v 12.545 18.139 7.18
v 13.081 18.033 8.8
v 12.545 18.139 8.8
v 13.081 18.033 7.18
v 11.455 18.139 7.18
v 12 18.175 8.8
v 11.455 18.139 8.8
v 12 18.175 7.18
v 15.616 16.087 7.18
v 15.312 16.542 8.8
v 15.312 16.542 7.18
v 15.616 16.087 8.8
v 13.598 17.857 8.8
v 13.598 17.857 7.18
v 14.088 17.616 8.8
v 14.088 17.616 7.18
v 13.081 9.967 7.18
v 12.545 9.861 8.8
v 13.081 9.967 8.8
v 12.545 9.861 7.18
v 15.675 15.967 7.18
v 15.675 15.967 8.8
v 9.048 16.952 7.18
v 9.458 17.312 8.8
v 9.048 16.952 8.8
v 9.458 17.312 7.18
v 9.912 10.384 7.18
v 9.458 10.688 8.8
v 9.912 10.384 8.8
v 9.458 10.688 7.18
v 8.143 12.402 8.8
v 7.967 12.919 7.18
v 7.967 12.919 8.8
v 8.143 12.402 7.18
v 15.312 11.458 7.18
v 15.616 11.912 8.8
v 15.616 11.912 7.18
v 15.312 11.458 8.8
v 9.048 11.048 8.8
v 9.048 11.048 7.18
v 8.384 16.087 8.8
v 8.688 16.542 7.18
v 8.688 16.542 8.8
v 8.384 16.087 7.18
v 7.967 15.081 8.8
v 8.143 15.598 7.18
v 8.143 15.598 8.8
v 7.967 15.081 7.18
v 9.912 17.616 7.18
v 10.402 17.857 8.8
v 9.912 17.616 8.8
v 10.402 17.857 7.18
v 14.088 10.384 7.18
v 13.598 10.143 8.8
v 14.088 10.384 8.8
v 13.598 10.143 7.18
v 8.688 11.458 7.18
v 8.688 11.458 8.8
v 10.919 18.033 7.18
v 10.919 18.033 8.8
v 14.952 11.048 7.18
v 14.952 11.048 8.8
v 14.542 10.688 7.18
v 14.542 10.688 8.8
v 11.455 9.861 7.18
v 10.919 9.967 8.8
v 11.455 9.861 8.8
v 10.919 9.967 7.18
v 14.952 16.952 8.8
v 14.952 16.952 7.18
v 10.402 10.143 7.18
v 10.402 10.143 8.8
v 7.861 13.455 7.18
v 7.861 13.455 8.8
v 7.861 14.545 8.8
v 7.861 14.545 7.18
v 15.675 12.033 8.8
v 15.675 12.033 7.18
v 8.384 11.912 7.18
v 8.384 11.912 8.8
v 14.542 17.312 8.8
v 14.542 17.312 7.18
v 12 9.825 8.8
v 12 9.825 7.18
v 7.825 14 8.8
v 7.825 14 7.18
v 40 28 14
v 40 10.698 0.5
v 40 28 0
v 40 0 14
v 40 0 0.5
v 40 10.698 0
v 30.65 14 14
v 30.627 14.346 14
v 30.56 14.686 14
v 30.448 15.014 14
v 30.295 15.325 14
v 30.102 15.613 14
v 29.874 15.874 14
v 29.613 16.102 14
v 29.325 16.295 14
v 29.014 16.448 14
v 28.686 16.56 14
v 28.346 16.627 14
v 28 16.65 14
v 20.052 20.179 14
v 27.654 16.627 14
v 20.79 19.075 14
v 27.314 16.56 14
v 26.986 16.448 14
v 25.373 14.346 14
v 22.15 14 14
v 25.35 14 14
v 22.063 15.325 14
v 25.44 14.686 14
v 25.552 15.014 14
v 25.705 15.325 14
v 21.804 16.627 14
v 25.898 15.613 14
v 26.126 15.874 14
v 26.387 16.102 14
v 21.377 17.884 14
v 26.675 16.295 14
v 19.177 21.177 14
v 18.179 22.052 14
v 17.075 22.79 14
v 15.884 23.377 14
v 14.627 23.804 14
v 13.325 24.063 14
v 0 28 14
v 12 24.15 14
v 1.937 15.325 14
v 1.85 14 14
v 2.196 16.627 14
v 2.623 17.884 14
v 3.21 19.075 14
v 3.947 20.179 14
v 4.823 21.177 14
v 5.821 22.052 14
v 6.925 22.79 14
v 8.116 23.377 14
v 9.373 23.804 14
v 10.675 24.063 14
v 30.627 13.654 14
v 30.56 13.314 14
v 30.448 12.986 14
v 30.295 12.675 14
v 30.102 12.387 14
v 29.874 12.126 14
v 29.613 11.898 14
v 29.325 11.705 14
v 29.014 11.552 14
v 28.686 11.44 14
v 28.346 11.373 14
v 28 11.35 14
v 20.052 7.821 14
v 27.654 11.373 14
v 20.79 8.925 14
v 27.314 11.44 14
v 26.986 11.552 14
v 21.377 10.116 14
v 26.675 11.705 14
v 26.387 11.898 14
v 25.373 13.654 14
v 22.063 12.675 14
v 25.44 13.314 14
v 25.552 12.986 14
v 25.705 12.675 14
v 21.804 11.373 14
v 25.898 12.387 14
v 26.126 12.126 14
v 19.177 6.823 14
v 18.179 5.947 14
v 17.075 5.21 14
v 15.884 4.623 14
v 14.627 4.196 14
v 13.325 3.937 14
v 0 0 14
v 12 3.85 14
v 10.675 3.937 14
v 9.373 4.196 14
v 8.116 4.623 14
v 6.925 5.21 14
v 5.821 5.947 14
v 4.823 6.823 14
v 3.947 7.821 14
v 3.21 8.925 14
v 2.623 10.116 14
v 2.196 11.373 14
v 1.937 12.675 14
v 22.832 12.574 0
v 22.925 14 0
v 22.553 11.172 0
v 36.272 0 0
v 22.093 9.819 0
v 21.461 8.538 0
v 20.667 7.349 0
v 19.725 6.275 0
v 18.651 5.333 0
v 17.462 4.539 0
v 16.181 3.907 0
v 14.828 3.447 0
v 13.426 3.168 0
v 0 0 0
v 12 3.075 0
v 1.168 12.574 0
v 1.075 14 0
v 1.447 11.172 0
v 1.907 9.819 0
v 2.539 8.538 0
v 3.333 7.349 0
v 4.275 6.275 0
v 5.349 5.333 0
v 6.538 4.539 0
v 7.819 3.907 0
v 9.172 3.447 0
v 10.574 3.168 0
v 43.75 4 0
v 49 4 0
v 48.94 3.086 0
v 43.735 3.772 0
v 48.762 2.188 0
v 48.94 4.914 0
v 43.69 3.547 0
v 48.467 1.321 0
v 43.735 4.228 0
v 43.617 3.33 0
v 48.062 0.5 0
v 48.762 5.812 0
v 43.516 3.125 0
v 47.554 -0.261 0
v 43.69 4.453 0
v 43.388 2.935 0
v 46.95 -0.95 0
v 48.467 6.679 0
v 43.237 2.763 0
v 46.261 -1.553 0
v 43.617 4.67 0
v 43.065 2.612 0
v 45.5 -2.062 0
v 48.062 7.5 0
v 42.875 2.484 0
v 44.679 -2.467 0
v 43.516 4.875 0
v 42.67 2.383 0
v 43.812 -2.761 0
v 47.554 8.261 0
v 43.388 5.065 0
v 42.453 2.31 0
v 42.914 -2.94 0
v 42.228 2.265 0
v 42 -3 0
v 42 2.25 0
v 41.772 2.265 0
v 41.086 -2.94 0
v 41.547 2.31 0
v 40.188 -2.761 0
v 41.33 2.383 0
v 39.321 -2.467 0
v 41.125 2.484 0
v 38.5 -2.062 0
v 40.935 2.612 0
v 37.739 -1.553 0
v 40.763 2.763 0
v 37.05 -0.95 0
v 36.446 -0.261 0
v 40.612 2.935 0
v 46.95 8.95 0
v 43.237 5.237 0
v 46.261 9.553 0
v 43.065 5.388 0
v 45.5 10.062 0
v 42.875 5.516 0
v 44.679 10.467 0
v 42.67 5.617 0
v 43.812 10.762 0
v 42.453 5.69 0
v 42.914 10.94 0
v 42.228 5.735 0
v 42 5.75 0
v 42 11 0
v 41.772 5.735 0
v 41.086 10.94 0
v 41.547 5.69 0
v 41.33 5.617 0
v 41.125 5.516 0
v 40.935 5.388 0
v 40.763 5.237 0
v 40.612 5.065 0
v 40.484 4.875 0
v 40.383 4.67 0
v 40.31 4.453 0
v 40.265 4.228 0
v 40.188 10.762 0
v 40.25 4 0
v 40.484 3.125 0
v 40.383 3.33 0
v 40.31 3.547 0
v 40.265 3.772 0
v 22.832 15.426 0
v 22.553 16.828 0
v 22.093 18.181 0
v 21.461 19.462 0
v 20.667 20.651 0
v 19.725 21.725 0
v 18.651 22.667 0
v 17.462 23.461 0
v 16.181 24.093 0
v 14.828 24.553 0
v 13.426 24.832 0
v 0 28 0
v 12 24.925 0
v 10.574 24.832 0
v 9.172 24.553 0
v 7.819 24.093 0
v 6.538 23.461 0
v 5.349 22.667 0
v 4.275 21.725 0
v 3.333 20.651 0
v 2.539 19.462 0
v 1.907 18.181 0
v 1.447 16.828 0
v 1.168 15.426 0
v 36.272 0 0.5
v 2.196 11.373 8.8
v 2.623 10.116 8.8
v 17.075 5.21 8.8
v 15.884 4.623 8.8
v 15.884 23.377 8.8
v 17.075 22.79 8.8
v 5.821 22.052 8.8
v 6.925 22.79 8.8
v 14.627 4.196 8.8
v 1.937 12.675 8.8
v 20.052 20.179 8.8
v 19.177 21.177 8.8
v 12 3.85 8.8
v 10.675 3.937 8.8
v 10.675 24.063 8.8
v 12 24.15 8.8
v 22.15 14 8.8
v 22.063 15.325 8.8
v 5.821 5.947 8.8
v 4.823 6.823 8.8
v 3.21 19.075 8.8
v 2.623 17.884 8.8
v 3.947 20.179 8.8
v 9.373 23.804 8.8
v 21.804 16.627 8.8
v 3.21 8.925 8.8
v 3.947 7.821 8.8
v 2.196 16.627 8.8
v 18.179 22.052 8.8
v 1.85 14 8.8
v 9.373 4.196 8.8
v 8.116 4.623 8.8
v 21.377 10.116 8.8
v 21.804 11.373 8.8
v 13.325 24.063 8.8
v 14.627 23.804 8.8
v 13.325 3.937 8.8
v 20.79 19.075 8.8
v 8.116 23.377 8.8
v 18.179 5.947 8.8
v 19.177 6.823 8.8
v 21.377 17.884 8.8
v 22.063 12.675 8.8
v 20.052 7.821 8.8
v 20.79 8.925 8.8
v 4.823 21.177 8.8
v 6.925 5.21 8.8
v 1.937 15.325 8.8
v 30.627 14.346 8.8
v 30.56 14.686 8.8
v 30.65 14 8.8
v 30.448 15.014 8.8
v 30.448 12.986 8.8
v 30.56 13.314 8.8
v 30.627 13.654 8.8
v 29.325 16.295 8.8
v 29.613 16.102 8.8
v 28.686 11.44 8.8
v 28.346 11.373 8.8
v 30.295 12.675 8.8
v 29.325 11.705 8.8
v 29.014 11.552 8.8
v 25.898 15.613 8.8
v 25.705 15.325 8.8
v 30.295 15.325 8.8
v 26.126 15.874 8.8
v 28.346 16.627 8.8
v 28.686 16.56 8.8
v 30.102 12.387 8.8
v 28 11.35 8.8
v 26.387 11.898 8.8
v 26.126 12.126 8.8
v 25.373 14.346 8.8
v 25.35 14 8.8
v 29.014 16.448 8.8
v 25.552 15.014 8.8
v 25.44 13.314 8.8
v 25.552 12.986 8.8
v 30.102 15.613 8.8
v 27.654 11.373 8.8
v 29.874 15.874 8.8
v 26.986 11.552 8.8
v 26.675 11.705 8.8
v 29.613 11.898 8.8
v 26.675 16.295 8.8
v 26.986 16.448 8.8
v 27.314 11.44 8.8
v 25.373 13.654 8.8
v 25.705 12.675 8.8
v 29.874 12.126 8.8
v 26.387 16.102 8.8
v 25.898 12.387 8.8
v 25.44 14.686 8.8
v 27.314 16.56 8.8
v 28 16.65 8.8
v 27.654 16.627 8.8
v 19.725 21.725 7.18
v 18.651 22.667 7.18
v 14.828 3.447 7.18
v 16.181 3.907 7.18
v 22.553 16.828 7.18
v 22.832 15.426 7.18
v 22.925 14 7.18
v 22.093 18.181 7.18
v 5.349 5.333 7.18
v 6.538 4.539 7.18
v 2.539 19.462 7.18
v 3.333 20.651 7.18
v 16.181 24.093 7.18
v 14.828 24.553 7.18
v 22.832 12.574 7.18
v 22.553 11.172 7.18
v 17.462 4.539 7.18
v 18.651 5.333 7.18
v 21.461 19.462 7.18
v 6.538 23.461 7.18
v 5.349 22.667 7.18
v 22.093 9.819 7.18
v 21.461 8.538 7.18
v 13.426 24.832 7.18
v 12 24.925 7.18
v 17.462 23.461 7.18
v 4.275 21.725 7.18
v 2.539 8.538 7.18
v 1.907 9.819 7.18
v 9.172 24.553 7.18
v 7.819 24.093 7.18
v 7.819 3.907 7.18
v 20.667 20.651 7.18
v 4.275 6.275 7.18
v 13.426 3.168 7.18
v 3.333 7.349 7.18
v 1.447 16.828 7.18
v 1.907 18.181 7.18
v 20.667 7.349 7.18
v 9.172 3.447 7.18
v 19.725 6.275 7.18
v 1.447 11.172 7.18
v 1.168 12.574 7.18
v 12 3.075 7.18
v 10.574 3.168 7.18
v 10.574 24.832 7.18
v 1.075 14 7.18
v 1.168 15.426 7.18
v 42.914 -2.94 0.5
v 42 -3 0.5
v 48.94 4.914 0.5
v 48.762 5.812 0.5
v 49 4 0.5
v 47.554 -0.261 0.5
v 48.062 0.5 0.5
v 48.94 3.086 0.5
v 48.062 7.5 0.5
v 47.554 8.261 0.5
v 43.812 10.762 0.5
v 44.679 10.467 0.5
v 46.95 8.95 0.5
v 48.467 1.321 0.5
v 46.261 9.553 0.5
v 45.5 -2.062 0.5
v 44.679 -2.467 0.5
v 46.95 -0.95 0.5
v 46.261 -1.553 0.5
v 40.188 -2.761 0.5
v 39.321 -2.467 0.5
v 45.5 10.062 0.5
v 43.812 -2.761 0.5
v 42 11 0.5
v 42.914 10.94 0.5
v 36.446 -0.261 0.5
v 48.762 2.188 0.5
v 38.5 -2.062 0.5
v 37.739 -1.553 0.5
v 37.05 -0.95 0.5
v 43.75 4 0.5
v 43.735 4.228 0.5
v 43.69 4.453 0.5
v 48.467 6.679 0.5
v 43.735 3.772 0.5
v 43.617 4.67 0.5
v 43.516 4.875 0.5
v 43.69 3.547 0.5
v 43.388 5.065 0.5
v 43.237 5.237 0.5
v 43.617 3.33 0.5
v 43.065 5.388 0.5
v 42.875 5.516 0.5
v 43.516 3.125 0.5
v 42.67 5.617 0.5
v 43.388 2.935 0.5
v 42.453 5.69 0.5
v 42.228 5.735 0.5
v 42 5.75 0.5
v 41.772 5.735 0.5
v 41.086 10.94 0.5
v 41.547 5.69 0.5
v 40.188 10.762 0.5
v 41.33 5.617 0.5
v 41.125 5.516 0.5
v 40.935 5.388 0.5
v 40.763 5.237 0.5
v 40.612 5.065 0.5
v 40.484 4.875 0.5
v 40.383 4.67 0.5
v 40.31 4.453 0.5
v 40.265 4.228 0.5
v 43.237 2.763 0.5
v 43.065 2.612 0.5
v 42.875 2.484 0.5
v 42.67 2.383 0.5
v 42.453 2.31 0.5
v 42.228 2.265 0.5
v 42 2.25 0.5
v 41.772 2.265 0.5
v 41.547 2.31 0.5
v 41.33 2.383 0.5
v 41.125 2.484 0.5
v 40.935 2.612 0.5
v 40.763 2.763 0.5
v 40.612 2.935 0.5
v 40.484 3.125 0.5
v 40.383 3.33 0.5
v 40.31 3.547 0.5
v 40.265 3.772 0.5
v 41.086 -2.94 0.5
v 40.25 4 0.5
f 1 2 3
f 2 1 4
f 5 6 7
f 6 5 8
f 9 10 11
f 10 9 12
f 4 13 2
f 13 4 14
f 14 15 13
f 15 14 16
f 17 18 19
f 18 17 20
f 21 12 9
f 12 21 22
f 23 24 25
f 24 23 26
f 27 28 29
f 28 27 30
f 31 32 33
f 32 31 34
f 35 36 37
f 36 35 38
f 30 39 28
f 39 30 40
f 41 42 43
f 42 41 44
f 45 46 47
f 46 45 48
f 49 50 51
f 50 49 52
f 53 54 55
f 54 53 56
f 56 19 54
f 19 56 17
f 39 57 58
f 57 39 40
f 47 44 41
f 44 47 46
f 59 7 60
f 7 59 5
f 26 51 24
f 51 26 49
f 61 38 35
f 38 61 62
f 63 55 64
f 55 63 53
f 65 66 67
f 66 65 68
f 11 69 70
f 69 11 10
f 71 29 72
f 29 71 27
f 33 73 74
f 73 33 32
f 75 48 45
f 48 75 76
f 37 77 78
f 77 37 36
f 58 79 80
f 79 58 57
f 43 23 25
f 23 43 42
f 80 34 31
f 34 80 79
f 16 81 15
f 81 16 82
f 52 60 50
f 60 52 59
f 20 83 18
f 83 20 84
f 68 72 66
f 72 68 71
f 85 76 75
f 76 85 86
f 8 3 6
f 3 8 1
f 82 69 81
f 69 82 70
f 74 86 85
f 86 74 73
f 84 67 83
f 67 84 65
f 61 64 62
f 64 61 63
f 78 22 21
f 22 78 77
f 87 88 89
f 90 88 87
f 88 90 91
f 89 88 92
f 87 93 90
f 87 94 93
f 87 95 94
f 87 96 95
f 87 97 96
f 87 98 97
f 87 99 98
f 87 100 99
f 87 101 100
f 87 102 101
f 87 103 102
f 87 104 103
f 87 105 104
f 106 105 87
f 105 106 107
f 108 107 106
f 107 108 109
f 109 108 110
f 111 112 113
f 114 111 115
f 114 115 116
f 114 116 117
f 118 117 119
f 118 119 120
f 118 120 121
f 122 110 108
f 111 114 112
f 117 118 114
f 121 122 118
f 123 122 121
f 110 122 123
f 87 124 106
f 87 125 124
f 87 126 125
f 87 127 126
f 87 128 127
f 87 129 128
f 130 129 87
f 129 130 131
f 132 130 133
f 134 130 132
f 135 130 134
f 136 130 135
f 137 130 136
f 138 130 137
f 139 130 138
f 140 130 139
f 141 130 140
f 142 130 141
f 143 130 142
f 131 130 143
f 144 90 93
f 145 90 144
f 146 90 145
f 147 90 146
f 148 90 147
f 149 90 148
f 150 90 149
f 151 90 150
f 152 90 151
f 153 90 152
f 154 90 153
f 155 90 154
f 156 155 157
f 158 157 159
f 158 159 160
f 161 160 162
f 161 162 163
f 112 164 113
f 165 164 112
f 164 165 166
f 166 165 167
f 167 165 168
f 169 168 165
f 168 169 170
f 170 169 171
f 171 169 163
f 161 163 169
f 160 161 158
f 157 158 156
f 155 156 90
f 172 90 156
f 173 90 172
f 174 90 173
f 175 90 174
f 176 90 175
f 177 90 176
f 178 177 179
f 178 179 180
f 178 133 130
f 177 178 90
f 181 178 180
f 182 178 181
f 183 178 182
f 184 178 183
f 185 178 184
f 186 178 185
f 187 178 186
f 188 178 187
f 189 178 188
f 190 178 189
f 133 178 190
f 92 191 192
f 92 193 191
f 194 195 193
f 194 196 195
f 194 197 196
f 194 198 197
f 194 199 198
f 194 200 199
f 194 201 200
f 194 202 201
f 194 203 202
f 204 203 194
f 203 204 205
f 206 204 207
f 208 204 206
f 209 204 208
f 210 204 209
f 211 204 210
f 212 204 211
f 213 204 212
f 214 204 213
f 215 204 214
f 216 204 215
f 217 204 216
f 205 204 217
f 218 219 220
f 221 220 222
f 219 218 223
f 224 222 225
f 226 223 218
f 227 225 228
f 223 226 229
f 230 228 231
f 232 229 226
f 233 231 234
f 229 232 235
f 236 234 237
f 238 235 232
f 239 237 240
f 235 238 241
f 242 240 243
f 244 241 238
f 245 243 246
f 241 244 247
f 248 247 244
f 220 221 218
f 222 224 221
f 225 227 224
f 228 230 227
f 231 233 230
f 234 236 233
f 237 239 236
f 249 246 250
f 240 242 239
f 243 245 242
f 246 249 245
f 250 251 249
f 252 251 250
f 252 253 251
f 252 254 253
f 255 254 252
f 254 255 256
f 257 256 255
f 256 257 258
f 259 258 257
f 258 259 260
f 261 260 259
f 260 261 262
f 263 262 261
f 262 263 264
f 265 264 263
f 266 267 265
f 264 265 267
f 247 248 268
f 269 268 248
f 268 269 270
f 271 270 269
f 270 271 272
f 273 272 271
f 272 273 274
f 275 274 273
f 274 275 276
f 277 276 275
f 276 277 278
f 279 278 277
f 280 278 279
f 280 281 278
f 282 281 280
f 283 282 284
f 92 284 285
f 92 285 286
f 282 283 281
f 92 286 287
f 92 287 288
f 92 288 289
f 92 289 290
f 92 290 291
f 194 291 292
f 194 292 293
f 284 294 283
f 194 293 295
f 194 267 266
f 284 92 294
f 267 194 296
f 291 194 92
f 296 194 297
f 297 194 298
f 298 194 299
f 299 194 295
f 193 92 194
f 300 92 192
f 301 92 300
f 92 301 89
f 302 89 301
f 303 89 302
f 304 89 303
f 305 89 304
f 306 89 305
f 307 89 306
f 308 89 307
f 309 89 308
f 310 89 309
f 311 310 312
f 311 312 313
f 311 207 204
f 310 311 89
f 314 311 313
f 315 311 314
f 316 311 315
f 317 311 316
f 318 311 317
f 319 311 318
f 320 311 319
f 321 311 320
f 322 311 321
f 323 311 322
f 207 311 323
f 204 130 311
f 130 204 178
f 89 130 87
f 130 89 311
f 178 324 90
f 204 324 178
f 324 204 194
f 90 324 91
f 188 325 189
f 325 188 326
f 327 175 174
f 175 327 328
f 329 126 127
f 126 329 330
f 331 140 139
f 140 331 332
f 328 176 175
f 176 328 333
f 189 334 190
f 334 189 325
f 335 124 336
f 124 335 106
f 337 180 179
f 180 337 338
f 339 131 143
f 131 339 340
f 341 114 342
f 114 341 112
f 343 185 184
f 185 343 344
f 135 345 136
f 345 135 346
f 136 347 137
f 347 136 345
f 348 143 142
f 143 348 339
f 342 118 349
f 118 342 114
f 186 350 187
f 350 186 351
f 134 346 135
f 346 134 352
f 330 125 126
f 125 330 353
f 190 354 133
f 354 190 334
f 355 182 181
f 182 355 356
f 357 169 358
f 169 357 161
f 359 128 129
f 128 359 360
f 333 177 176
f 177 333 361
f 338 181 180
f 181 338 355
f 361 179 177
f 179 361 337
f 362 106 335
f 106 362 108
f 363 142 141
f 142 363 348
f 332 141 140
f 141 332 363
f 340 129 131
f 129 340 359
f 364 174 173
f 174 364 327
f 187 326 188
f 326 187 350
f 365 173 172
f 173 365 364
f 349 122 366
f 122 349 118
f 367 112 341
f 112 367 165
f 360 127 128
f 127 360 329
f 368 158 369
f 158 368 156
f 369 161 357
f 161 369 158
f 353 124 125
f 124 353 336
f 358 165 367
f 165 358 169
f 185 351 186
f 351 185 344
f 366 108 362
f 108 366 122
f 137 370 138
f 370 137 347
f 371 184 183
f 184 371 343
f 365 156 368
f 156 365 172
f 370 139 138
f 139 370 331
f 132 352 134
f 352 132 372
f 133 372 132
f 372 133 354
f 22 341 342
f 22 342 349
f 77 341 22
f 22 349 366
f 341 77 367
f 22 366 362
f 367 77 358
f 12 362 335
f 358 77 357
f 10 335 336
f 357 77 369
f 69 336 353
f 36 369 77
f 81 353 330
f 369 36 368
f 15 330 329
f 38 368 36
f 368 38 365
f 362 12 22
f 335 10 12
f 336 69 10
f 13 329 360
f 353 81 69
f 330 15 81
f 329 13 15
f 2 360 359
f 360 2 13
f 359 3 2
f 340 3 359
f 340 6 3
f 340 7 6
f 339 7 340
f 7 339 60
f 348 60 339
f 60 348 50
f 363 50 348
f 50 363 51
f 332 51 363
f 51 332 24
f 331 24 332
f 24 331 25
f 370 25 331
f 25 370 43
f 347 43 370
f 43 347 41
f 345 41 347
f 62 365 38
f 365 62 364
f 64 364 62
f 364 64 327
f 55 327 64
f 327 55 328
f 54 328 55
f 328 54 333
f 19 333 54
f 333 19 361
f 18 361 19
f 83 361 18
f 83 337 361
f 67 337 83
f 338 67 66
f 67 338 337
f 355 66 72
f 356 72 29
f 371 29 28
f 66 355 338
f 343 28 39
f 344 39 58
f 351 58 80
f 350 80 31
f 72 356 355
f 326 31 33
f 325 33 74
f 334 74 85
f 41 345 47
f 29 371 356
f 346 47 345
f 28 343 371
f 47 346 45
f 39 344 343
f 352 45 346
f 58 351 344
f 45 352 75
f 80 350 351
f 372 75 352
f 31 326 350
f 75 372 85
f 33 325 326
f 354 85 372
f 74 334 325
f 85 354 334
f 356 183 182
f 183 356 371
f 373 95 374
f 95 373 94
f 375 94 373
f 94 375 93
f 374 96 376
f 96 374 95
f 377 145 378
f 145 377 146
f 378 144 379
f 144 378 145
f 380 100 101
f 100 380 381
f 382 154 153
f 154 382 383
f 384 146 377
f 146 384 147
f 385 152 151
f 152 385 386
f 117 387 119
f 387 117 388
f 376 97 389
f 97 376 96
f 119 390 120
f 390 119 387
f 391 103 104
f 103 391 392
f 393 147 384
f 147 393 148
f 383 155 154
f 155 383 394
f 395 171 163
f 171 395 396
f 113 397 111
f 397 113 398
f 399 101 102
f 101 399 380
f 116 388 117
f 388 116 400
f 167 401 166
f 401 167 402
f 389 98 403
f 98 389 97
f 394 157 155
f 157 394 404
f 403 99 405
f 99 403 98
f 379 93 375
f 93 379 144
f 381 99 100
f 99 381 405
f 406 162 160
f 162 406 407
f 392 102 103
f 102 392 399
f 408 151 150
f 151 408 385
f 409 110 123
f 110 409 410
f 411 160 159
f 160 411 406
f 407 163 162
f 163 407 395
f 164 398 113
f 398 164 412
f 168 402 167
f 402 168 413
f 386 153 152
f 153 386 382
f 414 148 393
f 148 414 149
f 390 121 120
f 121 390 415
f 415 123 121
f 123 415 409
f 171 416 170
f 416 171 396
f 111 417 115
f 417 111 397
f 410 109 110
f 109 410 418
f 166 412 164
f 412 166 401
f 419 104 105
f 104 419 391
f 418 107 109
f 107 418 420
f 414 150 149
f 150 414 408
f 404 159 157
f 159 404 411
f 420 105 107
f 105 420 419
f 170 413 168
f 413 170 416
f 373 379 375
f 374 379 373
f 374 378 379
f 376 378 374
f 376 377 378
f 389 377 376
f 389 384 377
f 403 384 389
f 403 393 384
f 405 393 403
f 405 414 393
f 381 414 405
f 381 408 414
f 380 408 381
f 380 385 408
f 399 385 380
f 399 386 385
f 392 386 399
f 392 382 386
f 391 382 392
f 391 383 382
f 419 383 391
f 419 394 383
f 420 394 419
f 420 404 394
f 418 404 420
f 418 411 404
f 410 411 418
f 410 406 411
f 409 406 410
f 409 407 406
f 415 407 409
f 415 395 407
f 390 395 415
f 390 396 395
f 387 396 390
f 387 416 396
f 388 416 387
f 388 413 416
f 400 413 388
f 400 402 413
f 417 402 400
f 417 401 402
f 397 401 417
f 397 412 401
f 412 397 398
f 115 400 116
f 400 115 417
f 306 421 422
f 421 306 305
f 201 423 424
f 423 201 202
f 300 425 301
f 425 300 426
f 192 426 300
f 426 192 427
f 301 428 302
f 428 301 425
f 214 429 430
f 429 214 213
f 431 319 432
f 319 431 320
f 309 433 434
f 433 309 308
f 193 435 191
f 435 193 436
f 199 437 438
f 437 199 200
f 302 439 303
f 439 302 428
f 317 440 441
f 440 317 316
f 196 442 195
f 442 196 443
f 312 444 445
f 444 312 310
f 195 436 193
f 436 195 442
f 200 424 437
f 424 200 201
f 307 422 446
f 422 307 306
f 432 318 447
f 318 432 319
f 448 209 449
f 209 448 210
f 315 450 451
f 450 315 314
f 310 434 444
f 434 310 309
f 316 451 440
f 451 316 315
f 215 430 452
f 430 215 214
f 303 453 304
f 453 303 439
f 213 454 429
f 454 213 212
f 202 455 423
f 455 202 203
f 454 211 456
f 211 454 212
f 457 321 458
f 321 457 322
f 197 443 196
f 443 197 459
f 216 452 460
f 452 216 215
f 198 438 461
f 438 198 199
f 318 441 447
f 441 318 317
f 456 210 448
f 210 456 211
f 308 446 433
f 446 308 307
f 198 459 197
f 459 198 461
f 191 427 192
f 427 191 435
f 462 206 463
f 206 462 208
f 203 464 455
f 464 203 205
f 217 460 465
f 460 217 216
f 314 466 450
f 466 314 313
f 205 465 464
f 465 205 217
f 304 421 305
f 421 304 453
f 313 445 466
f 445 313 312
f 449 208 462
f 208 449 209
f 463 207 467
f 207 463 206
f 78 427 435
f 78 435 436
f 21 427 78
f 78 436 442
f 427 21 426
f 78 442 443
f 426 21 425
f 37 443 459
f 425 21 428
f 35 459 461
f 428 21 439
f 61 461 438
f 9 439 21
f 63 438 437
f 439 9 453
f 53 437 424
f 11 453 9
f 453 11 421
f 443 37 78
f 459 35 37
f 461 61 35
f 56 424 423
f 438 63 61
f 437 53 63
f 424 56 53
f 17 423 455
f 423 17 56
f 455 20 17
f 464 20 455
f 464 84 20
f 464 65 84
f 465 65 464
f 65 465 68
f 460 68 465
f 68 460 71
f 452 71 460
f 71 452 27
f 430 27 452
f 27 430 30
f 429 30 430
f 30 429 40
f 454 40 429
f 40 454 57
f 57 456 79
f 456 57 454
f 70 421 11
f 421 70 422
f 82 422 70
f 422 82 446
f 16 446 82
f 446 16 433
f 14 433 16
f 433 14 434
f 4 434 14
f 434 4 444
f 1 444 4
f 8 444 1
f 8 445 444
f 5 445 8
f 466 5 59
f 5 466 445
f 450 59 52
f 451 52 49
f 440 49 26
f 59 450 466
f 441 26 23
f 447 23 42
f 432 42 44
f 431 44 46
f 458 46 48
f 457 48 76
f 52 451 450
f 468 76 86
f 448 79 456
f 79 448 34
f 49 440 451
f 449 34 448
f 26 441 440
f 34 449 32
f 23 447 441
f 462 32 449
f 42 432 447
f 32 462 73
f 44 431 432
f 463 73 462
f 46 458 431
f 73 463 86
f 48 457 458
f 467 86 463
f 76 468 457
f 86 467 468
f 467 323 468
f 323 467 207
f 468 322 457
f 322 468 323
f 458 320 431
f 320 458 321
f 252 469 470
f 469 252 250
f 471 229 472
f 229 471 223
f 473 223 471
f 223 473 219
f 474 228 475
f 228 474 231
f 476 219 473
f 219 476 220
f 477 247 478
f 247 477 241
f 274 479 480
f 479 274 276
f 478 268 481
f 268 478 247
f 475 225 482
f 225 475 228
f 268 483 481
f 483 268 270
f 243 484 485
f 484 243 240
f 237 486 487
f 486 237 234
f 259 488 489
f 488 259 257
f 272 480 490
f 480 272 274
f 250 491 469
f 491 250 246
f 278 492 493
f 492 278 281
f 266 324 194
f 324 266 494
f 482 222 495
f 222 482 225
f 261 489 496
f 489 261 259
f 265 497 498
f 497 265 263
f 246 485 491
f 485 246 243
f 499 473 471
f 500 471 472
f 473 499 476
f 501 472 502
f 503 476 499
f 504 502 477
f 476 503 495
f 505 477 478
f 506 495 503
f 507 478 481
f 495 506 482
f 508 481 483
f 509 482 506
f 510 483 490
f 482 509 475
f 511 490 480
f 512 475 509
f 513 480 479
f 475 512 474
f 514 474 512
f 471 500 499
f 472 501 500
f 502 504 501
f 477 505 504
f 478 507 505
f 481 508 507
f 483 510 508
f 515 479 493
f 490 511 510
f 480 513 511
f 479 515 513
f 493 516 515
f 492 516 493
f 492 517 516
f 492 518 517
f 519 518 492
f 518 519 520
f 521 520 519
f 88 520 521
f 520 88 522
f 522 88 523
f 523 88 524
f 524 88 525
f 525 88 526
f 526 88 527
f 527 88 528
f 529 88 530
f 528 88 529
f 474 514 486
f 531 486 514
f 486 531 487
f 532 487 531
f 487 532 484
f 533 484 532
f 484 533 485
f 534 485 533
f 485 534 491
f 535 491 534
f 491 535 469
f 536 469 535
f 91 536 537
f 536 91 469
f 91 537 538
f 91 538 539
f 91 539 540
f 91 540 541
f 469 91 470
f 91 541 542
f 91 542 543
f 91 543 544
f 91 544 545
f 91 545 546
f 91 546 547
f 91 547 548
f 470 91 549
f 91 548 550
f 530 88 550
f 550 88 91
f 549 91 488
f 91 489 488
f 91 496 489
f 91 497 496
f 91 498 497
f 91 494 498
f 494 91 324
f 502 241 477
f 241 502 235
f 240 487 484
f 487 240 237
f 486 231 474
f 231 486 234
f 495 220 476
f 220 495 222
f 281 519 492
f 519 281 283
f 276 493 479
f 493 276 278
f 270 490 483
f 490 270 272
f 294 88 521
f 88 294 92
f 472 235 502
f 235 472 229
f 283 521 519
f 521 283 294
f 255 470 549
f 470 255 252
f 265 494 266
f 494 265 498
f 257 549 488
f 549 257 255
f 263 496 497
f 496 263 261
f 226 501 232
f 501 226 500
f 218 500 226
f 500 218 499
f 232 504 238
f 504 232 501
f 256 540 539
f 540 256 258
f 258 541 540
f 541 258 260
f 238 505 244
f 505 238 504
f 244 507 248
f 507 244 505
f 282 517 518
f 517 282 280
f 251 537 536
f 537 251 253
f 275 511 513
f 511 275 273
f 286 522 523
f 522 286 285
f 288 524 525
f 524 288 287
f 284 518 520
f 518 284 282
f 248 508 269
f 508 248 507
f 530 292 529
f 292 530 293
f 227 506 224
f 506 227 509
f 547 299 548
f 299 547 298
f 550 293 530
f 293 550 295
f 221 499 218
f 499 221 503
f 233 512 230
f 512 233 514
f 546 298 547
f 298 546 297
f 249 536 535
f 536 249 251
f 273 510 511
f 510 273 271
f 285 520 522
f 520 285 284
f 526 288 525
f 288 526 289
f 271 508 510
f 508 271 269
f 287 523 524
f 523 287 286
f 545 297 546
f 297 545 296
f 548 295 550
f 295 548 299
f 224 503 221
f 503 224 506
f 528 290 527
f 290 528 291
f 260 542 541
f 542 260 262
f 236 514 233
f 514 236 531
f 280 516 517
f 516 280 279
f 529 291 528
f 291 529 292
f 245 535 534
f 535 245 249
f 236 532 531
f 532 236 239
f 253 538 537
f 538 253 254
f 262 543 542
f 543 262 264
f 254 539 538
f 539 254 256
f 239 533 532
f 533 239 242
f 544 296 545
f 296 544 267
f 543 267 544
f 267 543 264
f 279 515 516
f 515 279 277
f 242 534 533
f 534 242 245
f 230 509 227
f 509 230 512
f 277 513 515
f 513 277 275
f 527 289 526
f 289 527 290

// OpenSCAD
// file: parameters.scad
// =============================================================================
// Gen-BC — nightly 2026-10-03 (physics_scorer, honest magpylib watts)
// Clocking 0 deg (magnets N facing S / through-magnetised stack) + D-flat keyed bore + index notch + flip-symmetric braces/bolts.
// Windable 2-piece bobbin; turns = physics_scorer turns_fit; copper only between flanges.
// former_web = 3.60 mm (taller copper vs Gen-BA 2.46) — gap grows with web (honest Bz tradeoff).
// =============================================================================
topology            = "mid_rotor";

// --- Wire / winding (physics_scorer winding-fit) -------------------------------
wire_awg            = 26;
wire_od             = 0.45;     // insulated OD mm (bare 0.405)
fill_realistic      = 0.60;     // insulated-wire area / window, hand-wound layered
turns               = 114;       // = physics_scorer turns_fit (do NOT raise)
coil_former_type    = "bobbin";
coil_core_inset     = 8.40;     // radial copper build: hub = copper boundary inset by this
wind_build_axial    = 0.0;      // nothing proud of the flanges
wind_build_radial   = 0.0;

// --- Bobbin (base + lid) ---------------------------------------------------------
coil_id_r           = 28.00;    // copper boundary sector (over the magnet track)
coil_od_r           = 52.00;
span_deg            = 32.42;    // = pitch - 2*asin((wall+0.85)/coil_id_r) -> >=1.2 mm stator web
former_web          = 3.60;     // copper height between flanges
flange_t            = 0.60;
wall                = 1.00;     // flange lip beyond copper
former_bare_h       = former_web + 2 * flange_t;
coil_envelope_h     = former_bare_h + 2 * wind_build_axial;
tab_w               = 7.0;
tab_len             = 7.0;
tab_h               = former_bare_h / 2;
pin_d               = 1.9;      // 1.75 mm filament locating pin
coil_mount_r        = coil_od_r + 0.2 + 4.0;
lead_y              = 1.6;
lead_slot_w         = 0.9;
lead_groove_d       = 0.6;

// --- Gap -------------------------------------------------------------------------
run_clear           = 0.50;     // rotor face -> flange
gap_spacer_h        = run_clear + wind_build_axial;
m2m                 = coil_envelope_h + 2 * run_clear;

// --- Stator ----------------------------------------------------------------------
coil_stations       = 9;        // per stator; x2 stators
bay_clear           = 0.25;
bay_depth           = former_bare_h;
stator_back_web     = 2.0;
stator_thick        = bay_depth + stator_back_web;
stator_od           = 160.0;
shaft_clear_stator  = 14.0;     // stator is static; shaft only

// --- Rotor(s) --------------------------------------------------------------------
magnet_Br           = 1.43;     // N52
halbach_magnetisation = "diametric"; // O5x5 assist magnets MUST be DIAMETRICALLY magnetised (tangential)
rotor_b_same_axis   = true;     // same-index magnets share one axis: N faces S across the gap
large_pocket_d      = 20.3;
small_pocket_d      = 5.3;
pocket_h            = 5.2;
large_n             = 8;
R_large             = 40.0;
R_small_inner       = 26.0;
R_small_mid         = 40.0;
R_small_outer       = 56.0;
carrier_od          = 158.0;
mid_carrier_thick   = 12.0;
hub_h               = 10.0;
hub_od              = 30.0;
rotor_b_offset_deg  = 0.0;      // CLOCKING: magnets directly opposite
shaft_key           = "dflat";
dflat_depth         = 0.5;      // 8 mm shaft with 0.5 mm flat (7.5 across flat)
index_notch_d       = 3.0;

// --- Modular MAX interface (Gen-E family) -----------------------------------------
shaft_bore          = 8.35;
dflat_x             = 4.0 - dflat_depth + (shaft_bore - 8.0) / 2;
bearing_d           = 21.85;
bearing_h           = 7.2;
m3_clear            = 3.5;
bolt_r_inner        = 18.0;
bolt_n_inner        = 4;
bolt_inner_angles   = [22.5, -22.5, 157.5, 202.5];  // between poles, flip-symmetric
flange_bolt_r       = 72.0;
flange_bolt_n       = 6;
brace_r             = 68.0;
brace_d             = 4.3;
brace_n             = 4;
brace_angles        = [45, 135, 225, 315];          // flip-symmetric

spacer_pad_od       = 14.0;
spacer_pad_id       = m3_clear;
endbell_od          = 160.0;
endbell_thick       = 8.0;
endbell_shaft_clear = 10.0;
plate_max_mm        = 410;

$fn = 64;
// main file
// Gen-BC — fit coupon: O20/O5 pockets, 608 seat, D-flat bore, bobbin footprint/bay clearance strip
include <parameters.scad>;
$fn = 48;
// D-flat keyed bore: flat faces +X (angle 0 = magnet pocket 0 = index notch)
module dflat_bore(h) {
    intersection() {
        cylinder(d=shaft_bore, h=h);
        translate([-shaft_bore, -shaft_bore, 0]) cube([shaft_bore + dflat_x, 2*shaft_bore, h]);
    }
}

block_w = 40; block_d = 28; block_h = 14;
difference() {
    cube([block_w, block_d, block_h]);
    translate([12, block_d/2, block_h - pocket_h]) cylinder(d=large_pocket_d, h=pocket_h + 0.2);
    translate([28, block_d/2, block_h - pocket_h]) cylinder(d=small_pocket_d, h=pocket_h + 0.2);
    translate([12, block_d/2, -0.02]) cylinder(d=bearing_d, h=bearing_h);
    translate([12, block_d/2, -0.1]) dflat_bore(block_h + 1);
}
translate([block_w + 2, 4, 0])
    difference() {
        cylinder(d=spacer_pad_od, h=gap_spacer_h);
        translate([0, 0, -0.1]) cylinder(d=spacer_pad_id, h=gap_spacer_h + 0.2);
    }
